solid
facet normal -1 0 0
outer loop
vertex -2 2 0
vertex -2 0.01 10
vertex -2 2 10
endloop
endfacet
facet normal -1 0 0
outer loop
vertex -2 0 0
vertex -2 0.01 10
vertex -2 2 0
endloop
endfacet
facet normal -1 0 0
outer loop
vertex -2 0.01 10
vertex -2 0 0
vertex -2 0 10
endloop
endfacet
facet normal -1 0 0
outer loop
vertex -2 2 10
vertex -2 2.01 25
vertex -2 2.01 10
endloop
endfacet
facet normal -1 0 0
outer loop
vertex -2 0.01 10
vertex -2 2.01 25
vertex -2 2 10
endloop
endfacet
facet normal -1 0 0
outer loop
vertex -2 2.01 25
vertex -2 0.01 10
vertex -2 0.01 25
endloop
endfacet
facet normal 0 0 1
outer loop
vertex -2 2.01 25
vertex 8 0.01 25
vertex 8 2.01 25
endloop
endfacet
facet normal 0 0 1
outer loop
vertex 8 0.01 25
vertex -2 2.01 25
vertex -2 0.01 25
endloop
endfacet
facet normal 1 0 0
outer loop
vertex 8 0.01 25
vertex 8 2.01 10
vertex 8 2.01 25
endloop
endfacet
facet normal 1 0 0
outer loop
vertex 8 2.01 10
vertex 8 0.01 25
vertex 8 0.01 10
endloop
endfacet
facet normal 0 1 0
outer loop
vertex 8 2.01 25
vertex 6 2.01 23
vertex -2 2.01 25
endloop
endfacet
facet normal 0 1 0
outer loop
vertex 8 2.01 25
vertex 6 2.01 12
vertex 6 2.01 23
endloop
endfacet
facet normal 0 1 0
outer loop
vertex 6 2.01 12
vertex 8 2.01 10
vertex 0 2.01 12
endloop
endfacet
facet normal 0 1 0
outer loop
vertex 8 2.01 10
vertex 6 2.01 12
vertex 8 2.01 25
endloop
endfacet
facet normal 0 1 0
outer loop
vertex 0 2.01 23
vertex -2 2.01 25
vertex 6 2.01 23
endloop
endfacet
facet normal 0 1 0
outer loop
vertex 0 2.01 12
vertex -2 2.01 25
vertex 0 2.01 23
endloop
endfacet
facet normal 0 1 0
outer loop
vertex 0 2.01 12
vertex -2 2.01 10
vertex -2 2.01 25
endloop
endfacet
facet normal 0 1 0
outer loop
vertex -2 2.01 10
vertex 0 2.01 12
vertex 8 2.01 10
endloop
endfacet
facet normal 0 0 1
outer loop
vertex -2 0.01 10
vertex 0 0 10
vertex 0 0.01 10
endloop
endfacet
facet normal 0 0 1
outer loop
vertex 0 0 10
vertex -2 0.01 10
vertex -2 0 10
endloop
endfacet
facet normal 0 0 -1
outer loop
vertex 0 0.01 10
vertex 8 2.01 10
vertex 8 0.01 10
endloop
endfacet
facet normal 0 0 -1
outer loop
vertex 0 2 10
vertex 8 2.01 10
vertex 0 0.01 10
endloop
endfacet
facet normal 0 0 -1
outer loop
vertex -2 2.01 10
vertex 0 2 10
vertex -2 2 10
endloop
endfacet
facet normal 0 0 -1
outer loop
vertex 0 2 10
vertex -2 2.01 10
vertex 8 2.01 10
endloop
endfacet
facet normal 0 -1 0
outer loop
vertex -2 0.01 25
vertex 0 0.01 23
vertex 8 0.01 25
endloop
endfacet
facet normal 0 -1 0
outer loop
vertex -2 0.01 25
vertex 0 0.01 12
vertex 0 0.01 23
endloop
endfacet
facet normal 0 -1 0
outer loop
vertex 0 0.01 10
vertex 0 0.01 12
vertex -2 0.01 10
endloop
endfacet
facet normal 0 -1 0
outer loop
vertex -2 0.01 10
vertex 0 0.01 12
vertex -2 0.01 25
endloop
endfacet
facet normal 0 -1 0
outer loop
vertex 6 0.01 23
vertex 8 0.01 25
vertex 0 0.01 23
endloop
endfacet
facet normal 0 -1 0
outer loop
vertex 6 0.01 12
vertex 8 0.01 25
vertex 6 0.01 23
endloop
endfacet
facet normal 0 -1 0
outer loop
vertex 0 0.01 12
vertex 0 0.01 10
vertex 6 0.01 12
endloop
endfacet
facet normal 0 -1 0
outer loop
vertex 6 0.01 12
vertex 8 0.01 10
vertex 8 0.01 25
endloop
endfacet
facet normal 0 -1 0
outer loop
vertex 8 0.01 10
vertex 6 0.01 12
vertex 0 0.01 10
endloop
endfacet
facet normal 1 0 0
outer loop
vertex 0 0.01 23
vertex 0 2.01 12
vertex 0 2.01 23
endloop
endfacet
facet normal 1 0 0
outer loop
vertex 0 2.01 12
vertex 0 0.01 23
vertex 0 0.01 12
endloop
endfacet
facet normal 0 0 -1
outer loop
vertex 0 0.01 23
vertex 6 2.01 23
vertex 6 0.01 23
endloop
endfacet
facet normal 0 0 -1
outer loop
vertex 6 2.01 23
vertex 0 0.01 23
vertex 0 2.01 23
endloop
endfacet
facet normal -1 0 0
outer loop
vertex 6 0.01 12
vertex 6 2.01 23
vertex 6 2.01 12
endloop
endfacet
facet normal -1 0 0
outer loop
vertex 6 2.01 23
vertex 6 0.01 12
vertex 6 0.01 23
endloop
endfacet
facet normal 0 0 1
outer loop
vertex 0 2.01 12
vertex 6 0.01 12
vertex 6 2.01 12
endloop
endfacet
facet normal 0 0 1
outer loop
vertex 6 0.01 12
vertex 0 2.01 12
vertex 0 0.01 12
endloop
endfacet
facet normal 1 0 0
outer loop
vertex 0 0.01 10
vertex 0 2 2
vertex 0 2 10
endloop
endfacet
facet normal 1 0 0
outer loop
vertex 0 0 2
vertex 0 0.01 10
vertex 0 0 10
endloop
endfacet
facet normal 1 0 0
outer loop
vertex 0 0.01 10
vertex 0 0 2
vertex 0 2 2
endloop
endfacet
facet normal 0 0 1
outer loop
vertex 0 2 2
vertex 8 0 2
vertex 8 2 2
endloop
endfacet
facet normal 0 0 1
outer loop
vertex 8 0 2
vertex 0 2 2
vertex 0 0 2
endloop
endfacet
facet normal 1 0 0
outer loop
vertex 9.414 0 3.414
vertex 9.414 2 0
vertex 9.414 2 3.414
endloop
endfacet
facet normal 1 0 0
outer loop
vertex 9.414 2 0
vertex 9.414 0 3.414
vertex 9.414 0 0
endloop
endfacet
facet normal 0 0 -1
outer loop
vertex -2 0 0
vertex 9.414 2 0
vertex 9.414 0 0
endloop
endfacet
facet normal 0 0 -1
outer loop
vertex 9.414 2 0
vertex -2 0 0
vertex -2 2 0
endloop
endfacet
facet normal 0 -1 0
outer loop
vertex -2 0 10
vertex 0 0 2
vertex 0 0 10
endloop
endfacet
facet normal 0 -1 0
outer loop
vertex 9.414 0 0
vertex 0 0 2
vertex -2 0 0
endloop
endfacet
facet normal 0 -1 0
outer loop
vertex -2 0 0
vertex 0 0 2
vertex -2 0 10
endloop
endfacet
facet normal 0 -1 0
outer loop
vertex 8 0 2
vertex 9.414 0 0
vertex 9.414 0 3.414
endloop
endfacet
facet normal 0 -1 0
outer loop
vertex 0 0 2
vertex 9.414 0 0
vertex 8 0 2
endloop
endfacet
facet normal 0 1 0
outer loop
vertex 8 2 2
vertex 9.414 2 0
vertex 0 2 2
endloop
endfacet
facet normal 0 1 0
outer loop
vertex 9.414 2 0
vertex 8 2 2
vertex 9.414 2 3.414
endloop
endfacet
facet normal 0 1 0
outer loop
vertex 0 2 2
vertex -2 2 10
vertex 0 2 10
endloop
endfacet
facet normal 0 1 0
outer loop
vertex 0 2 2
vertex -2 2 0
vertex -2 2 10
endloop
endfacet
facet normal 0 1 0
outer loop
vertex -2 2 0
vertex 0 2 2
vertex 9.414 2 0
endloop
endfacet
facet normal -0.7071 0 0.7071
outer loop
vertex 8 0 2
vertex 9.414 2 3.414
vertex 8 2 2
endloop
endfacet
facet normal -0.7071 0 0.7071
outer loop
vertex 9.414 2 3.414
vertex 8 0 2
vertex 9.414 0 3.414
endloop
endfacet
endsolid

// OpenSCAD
// Generated by SolidPython 1.0.5 on 2021-04-02 19:14:00
$fn = 9;


union() {
	translate(v = [0, 0, 12.0000000000]) {
		difference() {
			translate(v = [-2.0000000000, 0.0100000000, -2.0000000000]) {
				cube(size = [10.0000000000, 2.0000000000, 15.0000000000]);
			}
			cube(size = [6.0000000000, 2.0200000000, 11.0000000000]);
		}
	}
	difference() {
		union() {
			cube(size = [9.4142135624, 2.0000000000, 2.0000000000]);
			translate(v = [-2.0000000000, 0, 0]) {
				cube(size = [2.0000000000, 2.0000000000, 10.0000000000]);
			}
			translate(v = [8.0000000000, 0, 2.0000000000]) {
				rotate(a = [0, 45, 0]) {
					cube(size = 2.0000000000);
				}
			}
		}
		translate(v = [9.4142135624, 0, 0]) {
			cube(size = 4.0000000000);
		}
	}
}
/***********************************************
*********      SolidPython code:      **********
************************************************
 
from solid import *
from solid.utils import *

cm = 10

thickness = 0.2*cm
z_fighting = 0.01
width = 1*cm
top_hook_height = 1.1*cm
top_hook_depth = 0.6*cm
bottom_hook_height = 0.8*cm
bottom_hook_depth = top_hook_depth + thickness

top_hook_hole = cube([top_hook_depth, thickness +
                      z_fighting*2, top_hook_height])
top_hook = translate([-thickness, z_fighting, -thickness])(
    cube([top_hook_depth + thickness*2, thickness, top_hook_height + thickness*2])
) - top_hook_hole

bottom_hook_bottom = cube(
    [bottom_hook_depth+thickness/2**.5, thickness, thickness])
bottom_hook = (
    bottom_hook_bottom
    + translate([-thickness, 0, 0])(
        cube([thickness, thickness, bottom_hook_height + thickness])
    )
    + translate([bottom_hook_depth, 0, 0.2*cm]
                )(rotate([0, 45, 0])(cube(thickness)))
    - translate([bottom_hook_depth+thickness/2**.5, 0, 0]
                )(cube(thickness*2))
)

hook = (
    translate([0, 0, bottom_hook_height + thickness*2])(top_hook)
    + bottom_hook
)

fn = 9
scad_render_to_file(hook, "hook-for-kitchen-pincer.scad",
                    file_header='$fn = %d;' % fn)
 
 
************************************************/
